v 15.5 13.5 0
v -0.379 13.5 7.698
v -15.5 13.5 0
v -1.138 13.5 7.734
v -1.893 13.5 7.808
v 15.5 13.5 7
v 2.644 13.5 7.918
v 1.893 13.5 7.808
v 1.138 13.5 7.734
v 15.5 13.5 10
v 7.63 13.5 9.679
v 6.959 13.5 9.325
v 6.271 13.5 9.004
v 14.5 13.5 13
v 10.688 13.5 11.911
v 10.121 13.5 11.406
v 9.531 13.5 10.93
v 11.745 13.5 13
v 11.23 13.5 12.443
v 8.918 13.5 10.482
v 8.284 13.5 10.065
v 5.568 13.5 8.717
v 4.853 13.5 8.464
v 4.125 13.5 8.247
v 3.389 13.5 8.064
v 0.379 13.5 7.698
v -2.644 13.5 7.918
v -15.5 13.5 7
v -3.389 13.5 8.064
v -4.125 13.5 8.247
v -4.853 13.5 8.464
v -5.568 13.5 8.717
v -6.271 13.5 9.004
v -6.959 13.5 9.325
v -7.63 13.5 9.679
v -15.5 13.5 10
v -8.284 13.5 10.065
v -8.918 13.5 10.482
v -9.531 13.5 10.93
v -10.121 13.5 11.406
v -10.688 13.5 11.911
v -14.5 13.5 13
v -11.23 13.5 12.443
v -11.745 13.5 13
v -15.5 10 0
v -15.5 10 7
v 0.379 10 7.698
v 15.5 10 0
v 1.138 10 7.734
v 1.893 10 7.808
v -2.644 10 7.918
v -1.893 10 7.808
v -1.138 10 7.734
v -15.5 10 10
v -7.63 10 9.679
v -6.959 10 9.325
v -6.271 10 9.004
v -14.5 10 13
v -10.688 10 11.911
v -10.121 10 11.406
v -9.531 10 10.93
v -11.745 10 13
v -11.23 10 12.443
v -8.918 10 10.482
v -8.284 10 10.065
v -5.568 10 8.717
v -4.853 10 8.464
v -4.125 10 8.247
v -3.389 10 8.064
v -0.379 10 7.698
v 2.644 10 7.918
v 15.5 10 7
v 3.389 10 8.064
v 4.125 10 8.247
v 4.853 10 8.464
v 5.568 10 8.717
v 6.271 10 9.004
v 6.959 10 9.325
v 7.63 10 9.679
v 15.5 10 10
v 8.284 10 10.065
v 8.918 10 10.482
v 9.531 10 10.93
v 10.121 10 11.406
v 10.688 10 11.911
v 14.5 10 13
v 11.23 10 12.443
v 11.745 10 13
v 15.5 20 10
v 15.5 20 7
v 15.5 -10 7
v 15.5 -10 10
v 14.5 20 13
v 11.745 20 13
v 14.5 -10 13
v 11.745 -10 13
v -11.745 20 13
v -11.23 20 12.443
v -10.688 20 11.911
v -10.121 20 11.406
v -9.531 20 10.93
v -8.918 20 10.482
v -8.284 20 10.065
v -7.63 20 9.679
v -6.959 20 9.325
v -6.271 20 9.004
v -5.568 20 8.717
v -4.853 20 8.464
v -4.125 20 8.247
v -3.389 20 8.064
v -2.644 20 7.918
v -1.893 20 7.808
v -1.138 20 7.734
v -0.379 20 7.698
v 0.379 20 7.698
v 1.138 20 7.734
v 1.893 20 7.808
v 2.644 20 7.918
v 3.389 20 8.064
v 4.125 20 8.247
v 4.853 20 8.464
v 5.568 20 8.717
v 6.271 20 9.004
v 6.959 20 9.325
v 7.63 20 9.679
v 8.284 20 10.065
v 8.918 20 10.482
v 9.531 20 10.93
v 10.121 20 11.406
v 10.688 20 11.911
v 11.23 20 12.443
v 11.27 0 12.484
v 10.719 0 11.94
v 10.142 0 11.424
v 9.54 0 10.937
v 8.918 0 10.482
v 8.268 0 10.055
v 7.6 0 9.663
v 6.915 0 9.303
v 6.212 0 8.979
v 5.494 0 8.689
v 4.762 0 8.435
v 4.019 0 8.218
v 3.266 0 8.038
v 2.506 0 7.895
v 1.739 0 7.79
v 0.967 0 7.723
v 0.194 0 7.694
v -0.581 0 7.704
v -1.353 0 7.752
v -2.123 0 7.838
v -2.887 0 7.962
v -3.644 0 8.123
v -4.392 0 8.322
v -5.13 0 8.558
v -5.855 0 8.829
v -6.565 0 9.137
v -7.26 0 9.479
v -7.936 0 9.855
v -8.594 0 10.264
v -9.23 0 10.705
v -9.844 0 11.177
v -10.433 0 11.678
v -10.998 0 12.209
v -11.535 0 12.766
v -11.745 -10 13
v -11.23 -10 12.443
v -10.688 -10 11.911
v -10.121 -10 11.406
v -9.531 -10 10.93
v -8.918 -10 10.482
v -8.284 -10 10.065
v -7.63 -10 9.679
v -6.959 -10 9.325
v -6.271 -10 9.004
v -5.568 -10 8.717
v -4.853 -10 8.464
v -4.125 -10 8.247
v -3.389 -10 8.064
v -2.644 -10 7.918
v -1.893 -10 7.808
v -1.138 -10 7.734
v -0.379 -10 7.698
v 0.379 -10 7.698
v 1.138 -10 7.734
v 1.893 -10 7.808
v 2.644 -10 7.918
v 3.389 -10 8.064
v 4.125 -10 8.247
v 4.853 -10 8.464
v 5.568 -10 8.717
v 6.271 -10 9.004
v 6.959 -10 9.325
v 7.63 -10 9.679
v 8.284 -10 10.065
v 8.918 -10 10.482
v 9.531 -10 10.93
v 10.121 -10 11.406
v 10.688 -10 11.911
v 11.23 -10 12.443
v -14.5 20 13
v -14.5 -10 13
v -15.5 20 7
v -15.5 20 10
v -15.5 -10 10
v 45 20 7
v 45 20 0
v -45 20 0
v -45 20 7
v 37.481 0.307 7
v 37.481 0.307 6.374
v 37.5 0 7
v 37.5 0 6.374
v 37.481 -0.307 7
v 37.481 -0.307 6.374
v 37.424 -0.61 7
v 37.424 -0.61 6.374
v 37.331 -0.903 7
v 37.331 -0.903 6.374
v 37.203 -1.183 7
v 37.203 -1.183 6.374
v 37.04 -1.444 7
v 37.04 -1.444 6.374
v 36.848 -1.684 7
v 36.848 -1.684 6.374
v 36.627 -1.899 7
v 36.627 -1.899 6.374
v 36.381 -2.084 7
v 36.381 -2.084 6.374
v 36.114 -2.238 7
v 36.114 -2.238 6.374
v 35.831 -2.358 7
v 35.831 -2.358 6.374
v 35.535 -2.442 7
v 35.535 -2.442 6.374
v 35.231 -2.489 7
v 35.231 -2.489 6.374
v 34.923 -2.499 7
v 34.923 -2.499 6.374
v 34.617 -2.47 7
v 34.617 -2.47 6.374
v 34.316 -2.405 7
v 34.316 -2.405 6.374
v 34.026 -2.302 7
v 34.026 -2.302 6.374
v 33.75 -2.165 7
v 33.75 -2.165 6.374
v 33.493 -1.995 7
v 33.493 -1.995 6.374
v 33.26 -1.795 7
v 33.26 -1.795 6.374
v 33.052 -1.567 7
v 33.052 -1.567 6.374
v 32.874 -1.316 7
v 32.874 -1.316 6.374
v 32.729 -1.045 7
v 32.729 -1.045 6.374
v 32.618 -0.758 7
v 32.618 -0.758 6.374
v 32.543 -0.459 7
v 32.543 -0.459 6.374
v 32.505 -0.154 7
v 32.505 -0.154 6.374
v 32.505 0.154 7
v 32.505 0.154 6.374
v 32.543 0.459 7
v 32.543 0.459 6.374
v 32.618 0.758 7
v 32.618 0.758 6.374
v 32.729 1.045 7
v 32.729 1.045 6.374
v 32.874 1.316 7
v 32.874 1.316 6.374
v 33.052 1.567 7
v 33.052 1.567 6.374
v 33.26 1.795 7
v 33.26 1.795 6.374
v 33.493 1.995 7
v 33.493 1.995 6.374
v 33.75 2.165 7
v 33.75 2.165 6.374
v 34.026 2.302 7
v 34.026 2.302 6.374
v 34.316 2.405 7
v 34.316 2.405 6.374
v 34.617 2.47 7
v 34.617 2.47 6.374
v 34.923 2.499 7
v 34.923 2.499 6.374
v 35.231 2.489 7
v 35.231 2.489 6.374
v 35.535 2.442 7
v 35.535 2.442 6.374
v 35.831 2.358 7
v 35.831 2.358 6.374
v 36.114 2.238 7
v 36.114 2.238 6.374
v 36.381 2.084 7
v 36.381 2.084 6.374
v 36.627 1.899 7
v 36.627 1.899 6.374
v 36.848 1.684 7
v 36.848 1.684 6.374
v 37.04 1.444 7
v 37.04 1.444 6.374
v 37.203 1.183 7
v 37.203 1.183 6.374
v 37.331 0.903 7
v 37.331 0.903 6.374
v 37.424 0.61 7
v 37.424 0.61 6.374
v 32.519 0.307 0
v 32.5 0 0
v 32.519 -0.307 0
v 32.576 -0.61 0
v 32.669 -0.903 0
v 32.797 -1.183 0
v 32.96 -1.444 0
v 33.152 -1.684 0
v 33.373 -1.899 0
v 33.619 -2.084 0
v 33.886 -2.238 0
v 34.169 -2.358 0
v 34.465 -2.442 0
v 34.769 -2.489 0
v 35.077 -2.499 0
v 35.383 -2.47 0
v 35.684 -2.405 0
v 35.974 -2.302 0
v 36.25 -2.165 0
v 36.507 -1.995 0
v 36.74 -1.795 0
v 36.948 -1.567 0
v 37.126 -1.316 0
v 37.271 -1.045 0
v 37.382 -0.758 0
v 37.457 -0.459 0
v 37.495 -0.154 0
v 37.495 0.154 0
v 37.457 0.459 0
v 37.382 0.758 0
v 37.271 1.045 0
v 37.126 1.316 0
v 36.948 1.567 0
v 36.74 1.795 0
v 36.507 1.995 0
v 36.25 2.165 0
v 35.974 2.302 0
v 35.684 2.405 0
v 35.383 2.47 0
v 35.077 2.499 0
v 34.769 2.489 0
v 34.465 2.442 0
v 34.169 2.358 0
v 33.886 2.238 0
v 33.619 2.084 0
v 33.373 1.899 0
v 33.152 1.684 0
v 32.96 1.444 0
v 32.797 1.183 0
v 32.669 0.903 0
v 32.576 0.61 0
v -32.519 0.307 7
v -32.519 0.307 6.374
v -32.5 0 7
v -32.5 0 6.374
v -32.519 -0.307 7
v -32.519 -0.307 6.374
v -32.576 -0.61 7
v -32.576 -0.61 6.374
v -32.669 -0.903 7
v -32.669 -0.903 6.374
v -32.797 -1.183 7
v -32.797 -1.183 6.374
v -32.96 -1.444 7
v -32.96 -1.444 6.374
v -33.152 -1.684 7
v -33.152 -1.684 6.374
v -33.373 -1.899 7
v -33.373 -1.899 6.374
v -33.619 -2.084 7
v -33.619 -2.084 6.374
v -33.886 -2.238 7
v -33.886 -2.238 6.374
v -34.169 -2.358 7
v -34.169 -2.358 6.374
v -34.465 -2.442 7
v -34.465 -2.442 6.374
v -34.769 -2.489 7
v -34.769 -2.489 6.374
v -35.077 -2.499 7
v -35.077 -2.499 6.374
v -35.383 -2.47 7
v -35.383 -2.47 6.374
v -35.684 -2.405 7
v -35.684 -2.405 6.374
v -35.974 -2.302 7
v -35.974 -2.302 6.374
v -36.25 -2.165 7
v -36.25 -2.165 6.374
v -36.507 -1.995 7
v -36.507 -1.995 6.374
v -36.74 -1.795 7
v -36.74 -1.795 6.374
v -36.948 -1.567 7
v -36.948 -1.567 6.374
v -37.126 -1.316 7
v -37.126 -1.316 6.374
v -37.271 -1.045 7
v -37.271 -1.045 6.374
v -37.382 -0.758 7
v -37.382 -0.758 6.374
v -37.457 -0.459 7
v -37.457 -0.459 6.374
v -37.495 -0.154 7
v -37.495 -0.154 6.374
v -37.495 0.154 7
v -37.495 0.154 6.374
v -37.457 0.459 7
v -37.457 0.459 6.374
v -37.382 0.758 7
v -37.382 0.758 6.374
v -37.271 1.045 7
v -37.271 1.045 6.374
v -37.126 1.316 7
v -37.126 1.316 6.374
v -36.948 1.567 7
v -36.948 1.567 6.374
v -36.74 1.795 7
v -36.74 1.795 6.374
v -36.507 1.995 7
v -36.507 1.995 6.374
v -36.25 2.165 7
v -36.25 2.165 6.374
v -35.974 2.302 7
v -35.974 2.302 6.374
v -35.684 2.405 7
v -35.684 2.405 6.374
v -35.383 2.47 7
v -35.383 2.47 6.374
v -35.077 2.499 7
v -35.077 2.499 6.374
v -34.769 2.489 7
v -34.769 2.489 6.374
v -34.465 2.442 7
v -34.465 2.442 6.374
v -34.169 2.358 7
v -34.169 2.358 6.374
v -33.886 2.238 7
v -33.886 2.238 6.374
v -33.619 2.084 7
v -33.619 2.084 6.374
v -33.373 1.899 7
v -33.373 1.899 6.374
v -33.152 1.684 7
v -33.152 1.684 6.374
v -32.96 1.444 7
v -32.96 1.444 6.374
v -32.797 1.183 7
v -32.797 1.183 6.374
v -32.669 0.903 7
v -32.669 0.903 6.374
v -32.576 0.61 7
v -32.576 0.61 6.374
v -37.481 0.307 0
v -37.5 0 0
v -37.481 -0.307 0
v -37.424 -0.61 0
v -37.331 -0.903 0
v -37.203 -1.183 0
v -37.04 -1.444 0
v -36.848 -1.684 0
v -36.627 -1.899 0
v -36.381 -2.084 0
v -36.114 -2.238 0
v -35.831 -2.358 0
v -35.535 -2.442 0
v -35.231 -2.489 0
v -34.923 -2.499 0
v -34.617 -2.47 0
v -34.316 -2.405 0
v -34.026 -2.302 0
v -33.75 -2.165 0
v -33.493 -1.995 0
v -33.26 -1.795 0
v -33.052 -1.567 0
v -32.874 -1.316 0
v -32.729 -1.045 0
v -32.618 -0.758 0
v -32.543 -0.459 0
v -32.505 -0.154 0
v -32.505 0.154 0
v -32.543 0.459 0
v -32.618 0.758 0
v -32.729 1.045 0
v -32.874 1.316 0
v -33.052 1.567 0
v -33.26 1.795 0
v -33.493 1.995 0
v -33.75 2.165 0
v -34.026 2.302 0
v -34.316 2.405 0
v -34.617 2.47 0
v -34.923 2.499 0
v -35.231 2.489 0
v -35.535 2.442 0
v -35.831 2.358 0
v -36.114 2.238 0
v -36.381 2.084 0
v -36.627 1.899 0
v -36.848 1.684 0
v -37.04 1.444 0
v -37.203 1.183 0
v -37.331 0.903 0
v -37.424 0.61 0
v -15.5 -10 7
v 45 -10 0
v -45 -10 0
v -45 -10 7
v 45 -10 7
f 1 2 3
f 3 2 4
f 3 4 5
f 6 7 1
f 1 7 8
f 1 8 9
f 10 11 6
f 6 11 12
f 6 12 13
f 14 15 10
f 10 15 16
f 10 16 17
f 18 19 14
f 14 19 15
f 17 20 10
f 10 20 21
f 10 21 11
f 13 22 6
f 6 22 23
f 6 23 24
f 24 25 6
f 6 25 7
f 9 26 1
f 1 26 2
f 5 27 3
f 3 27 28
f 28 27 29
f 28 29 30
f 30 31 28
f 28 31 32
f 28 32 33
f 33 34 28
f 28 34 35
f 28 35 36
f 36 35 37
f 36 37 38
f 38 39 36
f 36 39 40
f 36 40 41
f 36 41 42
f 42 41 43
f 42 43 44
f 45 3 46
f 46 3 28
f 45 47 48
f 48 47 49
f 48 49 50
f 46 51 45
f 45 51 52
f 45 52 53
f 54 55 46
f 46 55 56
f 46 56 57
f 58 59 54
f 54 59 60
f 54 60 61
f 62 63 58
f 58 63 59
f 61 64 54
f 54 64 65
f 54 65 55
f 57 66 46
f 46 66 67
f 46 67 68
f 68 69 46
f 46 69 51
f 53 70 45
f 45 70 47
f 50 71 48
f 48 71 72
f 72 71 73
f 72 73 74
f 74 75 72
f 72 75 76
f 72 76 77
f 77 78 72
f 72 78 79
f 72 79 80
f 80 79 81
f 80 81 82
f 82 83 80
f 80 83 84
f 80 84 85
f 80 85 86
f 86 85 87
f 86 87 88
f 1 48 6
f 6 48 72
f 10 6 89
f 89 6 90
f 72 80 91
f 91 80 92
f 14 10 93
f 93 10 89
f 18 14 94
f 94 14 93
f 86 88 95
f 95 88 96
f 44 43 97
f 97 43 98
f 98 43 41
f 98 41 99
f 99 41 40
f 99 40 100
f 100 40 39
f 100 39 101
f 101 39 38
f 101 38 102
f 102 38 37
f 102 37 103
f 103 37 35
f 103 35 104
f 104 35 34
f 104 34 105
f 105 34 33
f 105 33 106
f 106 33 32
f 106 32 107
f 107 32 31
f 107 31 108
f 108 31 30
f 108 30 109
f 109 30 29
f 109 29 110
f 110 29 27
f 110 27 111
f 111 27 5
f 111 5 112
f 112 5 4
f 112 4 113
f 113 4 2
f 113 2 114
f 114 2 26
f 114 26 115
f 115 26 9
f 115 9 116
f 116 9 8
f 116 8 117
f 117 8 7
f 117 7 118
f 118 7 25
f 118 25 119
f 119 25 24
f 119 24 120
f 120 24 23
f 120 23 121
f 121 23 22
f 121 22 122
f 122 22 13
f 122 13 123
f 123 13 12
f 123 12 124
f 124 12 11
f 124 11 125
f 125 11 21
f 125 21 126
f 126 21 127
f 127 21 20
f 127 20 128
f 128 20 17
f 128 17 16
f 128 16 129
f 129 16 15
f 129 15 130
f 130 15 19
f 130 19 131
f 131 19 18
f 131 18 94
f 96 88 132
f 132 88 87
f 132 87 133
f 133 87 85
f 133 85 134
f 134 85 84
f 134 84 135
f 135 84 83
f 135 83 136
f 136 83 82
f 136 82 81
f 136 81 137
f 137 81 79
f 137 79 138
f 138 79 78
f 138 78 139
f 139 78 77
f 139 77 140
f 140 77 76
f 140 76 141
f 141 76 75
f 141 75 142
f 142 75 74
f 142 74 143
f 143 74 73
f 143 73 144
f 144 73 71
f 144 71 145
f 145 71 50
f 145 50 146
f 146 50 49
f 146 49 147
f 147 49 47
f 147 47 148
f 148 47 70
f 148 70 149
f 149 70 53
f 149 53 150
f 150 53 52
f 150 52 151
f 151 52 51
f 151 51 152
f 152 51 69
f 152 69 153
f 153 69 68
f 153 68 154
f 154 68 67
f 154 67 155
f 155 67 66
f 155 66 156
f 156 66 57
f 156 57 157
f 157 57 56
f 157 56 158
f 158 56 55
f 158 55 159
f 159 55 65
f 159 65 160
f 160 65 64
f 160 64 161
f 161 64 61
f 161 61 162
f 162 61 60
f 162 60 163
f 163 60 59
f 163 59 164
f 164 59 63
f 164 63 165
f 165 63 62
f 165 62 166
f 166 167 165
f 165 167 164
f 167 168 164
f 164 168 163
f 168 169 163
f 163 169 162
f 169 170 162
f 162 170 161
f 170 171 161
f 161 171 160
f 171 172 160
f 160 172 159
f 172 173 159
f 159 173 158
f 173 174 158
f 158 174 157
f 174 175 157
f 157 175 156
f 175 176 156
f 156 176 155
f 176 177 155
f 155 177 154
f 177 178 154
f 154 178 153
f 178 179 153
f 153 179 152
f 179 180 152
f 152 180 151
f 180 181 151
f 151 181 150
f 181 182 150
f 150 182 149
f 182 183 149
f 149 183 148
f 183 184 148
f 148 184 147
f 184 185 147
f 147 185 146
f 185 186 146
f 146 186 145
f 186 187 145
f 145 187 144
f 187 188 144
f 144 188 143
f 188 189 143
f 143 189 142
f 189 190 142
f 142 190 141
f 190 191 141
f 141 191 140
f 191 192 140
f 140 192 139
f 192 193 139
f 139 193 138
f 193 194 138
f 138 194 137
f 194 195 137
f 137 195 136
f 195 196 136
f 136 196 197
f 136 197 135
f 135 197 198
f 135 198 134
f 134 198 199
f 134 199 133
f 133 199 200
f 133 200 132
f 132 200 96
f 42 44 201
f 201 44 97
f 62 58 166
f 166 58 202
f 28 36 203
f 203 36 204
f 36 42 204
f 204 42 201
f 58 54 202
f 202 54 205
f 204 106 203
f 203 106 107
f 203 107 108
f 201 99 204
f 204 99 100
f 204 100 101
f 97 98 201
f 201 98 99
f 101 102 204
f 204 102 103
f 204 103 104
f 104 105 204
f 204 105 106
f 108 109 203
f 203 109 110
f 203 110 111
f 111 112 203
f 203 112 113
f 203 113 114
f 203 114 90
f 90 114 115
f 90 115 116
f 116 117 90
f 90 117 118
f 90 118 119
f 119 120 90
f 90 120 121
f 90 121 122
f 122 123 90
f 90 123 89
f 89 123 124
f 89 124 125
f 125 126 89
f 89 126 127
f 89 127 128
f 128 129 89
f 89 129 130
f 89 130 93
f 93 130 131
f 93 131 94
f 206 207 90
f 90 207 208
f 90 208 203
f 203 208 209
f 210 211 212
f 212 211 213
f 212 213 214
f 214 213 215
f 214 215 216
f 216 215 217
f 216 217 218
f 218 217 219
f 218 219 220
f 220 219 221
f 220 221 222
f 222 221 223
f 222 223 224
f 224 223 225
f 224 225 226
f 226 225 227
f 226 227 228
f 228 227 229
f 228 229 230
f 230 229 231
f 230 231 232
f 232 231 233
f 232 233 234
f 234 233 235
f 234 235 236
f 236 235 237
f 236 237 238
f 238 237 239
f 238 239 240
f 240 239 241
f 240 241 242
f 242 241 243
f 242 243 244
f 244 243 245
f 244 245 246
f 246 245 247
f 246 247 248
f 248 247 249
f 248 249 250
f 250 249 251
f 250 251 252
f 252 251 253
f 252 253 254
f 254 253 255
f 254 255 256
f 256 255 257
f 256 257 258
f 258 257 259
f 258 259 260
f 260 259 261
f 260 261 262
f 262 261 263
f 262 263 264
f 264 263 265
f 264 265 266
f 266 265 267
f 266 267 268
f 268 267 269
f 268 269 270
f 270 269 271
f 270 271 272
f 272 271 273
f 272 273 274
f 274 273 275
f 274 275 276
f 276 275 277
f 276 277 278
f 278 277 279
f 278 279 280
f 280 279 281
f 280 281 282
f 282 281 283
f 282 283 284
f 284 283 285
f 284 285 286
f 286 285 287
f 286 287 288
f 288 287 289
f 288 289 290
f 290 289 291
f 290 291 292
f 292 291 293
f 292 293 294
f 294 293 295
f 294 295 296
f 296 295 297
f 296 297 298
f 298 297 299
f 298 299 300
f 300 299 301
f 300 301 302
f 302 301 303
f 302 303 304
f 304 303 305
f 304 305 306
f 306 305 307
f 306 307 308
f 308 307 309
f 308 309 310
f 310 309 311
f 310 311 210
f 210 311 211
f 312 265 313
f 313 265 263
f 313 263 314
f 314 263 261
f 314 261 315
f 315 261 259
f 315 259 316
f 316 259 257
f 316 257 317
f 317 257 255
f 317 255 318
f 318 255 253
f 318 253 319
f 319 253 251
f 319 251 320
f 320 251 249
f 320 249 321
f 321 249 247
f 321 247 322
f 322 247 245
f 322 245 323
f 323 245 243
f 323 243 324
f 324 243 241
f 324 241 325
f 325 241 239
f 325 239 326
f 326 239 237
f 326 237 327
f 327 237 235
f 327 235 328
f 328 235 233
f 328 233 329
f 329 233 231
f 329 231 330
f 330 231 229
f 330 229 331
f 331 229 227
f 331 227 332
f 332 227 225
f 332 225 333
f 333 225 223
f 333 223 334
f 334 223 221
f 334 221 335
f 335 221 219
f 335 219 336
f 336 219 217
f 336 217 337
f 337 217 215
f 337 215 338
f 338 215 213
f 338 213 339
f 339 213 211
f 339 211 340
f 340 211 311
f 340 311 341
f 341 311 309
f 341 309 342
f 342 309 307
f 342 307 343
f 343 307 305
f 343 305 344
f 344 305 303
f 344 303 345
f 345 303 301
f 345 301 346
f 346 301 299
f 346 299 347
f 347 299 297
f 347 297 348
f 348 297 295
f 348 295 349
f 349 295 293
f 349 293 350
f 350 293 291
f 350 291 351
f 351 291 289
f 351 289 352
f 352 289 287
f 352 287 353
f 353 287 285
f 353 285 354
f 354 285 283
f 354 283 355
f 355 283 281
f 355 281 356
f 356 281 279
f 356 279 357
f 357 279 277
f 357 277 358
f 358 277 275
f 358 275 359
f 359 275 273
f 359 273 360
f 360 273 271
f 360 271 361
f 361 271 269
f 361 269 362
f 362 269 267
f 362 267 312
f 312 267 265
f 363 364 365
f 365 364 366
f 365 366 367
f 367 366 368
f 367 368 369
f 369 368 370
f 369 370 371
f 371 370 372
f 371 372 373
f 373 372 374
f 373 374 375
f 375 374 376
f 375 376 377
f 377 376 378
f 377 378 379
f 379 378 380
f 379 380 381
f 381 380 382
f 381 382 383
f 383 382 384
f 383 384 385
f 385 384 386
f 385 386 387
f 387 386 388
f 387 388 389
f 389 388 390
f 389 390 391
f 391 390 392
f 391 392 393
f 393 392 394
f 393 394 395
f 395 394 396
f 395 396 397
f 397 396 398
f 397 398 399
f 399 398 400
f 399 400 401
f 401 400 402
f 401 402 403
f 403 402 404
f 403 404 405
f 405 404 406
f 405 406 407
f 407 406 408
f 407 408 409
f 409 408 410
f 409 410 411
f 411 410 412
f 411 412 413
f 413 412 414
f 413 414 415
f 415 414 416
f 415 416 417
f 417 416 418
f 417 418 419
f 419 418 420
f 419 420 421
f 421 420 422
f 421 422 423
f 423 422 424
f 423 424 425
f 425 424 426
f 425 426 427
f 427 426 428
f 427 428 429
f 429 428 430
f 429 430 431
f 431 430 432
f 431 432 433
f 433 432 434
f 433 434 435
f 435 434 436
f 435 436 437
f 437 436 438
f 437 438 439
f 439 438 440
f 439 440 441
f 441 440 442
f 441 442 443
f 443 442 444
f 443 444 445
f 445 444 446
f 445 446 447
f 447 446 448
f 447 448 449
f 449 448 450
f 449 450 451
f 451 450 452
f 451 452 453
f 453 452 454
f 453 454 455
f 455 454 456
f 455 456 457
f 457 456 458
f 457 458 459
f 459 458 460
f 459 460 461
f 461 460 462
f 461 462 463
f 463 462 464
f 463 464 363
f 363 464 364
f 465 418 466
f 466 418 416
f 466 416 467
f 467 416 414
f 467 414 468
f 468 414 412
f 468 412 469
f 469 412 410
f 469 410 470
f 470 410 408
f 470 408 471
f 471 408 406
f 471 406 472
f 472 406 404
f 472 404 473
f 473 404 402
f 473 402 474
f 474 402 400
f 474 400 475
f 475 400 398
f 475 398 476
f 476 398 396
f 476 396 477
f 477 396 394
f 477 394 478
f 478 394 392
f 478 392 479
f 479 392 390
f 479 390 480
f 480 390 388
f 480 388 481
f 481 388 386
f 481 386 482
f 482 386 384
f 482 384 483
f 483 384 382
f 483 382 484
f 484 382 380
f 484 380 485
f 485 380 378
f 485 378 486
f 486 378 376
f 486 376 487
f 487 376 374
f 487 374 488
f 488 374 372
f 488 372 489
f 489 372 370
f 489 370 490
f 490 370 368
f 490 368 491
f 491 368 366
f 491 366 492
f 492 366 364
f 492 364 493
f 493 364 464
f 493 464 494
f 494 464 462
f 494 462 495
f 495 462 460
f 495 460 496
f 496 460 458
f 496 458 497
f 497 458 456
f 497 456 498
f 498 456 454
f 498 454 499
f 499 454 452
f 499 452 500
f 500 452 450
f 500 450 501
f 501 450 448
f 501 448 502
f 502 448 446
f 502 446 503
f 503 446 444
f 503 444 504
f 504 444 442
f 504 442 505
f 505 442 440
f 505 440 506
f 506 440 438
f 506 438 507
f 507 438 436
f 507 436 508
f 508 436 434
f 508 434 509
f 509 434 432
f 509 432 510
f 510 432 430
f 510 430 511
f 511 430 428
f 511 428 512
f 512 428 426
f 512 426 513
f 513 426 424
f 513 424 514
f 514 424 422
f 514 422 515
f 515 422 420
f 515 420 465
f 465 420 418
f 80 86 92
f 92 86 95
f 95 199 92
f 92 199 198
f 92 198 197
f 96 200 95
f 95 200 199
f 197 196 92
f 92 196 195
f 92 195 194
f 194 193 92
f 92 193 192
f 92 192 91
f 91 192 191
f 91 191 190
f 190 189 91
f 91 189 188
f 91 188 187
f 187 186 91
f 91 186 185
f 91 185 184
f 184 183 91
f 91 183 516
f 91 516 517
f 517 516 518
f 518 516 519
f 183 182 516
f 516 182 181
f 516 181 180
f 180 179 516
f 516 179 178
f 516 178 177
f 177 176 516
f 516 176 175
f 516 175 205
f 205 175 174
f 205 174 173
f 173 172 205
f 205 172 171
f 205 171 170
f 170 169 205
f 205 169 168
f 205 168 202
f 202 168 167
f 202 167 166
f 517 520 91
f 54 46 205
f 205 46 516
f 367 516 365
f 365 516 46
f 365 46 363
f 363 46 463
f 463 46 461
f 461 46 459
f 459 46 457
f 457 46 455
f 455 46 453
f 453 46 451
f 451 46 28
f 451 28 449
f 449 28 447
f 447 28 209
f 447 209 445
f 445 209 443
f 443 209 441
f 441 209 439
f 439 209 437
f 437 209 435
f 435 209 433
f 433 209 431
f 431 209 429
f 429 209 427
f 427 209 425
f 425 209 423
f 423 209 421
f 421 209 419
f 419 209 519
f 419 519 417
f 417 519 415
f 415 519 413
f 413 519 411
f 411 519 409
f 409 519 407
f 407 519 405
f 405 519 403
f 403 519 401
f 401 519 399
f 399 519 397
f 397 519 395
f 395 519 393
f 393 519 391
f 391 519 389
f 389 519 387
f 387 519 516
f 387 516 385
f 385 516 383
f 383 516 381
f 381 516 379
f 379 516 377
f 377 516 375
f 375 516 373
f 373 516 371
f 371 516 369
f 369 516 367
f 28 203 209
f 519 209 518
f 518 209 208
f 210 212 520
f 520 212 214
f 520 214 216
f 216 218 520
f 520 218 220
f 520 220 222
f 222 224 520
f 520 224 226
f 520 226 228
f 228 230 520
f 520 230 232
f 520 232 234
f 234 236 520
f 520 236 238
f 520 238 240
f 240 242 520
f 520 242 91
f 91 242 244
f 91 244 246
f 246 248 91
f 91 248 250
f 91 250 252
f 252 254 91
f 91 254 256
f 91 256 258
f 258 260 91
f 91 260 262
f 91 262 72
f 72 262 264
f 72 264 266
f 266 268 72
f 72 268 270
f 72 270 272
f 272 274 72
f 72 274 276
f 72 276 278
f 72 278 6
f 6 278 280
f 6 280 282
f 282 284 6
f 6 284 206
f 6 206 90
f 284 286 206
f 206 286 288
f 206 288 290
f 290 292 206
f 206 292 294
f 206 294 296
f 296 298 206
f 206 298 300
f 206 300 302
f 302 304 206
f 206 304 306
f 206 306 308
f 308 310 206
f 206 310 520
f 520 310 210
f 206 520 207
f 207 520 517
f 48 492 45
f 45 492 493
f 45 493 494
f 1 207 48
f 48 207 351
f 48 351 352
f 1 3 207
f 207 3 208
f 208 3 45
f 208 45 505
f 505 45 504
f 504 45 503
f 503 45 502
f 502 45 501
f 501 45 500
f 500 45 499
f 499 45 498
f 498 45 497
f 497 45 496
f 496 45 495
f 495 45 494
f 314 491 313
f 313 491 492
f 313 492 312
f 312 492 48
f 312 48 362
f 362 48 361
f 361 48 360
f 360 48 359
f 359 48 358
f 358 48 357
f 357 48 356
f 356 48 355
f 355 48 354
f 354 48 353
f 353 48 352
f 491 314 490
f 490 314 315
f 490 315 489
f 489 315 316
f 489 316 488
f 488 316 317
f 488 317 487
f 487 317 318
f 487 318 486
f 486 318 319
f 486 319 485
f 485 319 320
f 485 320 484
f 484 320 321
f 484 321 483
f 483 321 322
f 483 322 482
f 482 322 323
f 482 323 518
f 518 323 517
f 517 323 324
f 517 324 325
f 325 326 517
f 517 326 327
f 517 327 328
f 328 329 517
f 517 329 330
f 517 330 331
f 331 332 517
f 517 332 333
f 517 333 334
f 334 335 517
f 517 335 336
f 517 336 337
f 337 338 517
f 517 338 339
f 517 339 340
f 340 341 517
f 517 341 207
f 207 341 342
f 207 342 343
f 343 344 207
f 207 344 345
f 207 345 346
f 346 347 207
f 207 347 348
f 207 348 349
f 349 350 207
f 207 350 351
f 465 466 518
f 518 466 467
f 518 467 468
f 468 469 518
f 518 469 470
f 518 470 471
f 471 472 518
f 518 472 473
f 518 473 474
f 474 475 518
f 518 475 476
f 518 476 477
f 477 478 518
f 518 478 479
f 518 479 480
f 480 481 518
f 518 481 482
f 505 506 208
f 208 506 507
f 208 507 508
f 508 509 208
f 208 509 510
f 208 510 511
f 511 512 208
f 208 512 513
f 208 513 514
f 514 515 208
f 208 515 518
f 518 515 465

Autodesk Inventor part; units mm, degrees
ref_plane "YZ Plane" through (0, 0, 0) normal (1, 0, 0) x (0, 1, 0)
ref_plane "XZ Plane" through (0, 0, 0) normal (0, 1, 0) x (-1, 0, 0)
ref_plane "XY Plane" through (0, 0, 0) normal (0, 0, 1) x (1, 0, 0)
sketch "Sketch1" plane through (0, 0, 0) normal (0, 0, 1) x (1, 0, 0)
  line L0 (-45, 10) -> (45, 10)
  line L1 (45, 10) -> (45, -10)
  line L2 (45, -10) -> (-45, -10)
  line L3 (-45, -10) -> (-45, 10)
  point P0 (0, 0)
  point P1 (0, 10)
  point P2 (-45, 0)
  dimension "d0" = 20
  dimension "d1" = 90
extrude "Extrusion1" add sketch "Sketch1" along normal blind 13
sketch "Sketch3" plane through (-45, 10, 0) normal (0, 1, 0) x (1, 0, 0)
  line L0 (90, 0) -> (90, -13) projected
  line L1 (90, -13) -> (0, -13) projected
  line L2 (90, -13) -> (60.5, -13)
  line L3 (60.5, -13) -> (60.5, -7)
  line L4 (60.5, -7) -> (90, -7)
  line L5 (90, -7) -> (90, -13)
  point P0 (45, 0)
  point P1 (60.5, -13)
  dimension "d8" = 6
  dimension "d20" = 15.5
extrude "Extrusion2" cut sketch "Sketch3" against normal through all
mirror "Mirror1" about plane through (0, 0, 0) normal (1, 0, 0) of "Extrusion2"
sketch "Sketch4" plane through (-45, 10, 0) normal (0, 1, 0) x (1, 0, 0)
  line L0 (42, -26.343) -> (42, -14.343)
  line L1 (48, -22.843) -> (48, -17.843)
  line L2 (45, -24.843) -> (45, -15.843)
  line L3 (39, -27.343) -> (39, -13.343)
  line L4 (8, -14.343) -> (8, -26.343)
  line L5 (11, -13.343) -> (11, -27.343)
  line L6 (5, -15.843) -> (5, -24.843)
  line L7 (2, -17.843) -> (2, -22.843)
  circle A0 centre (45, -23.343) radius 15.65
  line L8 (90, 0) -> (0, 0) projected
  point P0 (45, 0)
  point P1 (45, 0)
  dimension "d21" = 31.3
  dimension "d22" = 23.343
extrude "Extrusion3" cut sketch "Sketch4" against normal through all
chamfer "Chamfer1" distance 1 distance2 3 1 edges at (-15.5, 0, 13) measured on face at (-12.9967, 3.3333, 13)
chamfer "Chamfer2" distance 1 distance2 3 1 edges at (15.5, 0, 13) measured on face at (14.2483, -3.3333, 13)
sketch "Sketch5" plane through (0, 0, 0) normal (0, 0, -1) x (-1, 0, 0)
  line L0 (45, -10) -> (-45, -10) projected
  line L1 (0, 23.0048) -> (0, -23.0048) construction
  point P0 (0, 0)
  point P1 (-35, 0)
  point P2 (35, 0)
  point P3 (0, 0)
  dimension "d23" = 70
hole "Hole1" at (35, 0, 0) at (-35, 0, 0) direction (0, 0, 1) diameter 5 end through all
sketch "Sketch6" plane through (-45, 10, 0) normal (0, 1, 0) x (1, 0, 0)
  line L0 (60.5, -10) -> (59.5, -13) projected
  line L1 (60.5, -10) -> (60.5, -7) projected
  line L2 (60.5, -7) -> (90, -7) projected
  line L3 (90, 0) -> (90, -7) projected
  line L4 (90, 0) -> (0, 0) projected
  line L5 (0, 0) -> (0, -7) projected
  line L6 (0, -7) -> (29.5, -7) projected
  line L7 (29.5, -7) -> (29.5, -10) projected
  line L8 (30.5, -13) -> (29.5, -10) projected
  line L9 (33.255, -13) -> (30.5, -13) projected
  arc A0 (56.745, -13) -> (33.255, -13) centre (45, -23.343) ccw projected
  line L10 (59.5, -13) -> (56.745, -13) projected
  line L11 (60.5, -7) -> (60.5, 0)
  line L12 (90, 0) -> (0, 0) projected
  line L13 (29.5, -7) -> (29.5, 0)
  line L14 (0, 0) -> (90, 0) projected
  point P0 (45, 0)
extrude "Extrusion4" add sketch "Sketch6" along normal blind 10
sketch "Sketch7" plane through (-45, -10, 7) normal (0, 0, 1) x (1, 0, 0)
  line L0 (29.5, 23.5) -> (60.5, 23.5)
  line L1 (60.5, 23.5) -> (60.5, 20)
  line L2 (60.5, 20) -> (29.5, 20)
  line L3 (29.5, 20) -> (29.5, 23.5)
  line L4 (13, 20) -> (27.9, 20)
  line L5 (90, 30) -> (0, 30) projected
  line L6 (60.5, 30) -> (60.5, 0) projected
  point P0 (45, 10)
  point P1 (45, 23.5)
  point P2 (45, 30)
  dimension "d33" = 3.5
extrude "Extrusion5" cut sketch "Sketch7" against normal through all both and the other way through all
properties part number "0008-10-004 Fixare seringa" material "ABS Plastic"
